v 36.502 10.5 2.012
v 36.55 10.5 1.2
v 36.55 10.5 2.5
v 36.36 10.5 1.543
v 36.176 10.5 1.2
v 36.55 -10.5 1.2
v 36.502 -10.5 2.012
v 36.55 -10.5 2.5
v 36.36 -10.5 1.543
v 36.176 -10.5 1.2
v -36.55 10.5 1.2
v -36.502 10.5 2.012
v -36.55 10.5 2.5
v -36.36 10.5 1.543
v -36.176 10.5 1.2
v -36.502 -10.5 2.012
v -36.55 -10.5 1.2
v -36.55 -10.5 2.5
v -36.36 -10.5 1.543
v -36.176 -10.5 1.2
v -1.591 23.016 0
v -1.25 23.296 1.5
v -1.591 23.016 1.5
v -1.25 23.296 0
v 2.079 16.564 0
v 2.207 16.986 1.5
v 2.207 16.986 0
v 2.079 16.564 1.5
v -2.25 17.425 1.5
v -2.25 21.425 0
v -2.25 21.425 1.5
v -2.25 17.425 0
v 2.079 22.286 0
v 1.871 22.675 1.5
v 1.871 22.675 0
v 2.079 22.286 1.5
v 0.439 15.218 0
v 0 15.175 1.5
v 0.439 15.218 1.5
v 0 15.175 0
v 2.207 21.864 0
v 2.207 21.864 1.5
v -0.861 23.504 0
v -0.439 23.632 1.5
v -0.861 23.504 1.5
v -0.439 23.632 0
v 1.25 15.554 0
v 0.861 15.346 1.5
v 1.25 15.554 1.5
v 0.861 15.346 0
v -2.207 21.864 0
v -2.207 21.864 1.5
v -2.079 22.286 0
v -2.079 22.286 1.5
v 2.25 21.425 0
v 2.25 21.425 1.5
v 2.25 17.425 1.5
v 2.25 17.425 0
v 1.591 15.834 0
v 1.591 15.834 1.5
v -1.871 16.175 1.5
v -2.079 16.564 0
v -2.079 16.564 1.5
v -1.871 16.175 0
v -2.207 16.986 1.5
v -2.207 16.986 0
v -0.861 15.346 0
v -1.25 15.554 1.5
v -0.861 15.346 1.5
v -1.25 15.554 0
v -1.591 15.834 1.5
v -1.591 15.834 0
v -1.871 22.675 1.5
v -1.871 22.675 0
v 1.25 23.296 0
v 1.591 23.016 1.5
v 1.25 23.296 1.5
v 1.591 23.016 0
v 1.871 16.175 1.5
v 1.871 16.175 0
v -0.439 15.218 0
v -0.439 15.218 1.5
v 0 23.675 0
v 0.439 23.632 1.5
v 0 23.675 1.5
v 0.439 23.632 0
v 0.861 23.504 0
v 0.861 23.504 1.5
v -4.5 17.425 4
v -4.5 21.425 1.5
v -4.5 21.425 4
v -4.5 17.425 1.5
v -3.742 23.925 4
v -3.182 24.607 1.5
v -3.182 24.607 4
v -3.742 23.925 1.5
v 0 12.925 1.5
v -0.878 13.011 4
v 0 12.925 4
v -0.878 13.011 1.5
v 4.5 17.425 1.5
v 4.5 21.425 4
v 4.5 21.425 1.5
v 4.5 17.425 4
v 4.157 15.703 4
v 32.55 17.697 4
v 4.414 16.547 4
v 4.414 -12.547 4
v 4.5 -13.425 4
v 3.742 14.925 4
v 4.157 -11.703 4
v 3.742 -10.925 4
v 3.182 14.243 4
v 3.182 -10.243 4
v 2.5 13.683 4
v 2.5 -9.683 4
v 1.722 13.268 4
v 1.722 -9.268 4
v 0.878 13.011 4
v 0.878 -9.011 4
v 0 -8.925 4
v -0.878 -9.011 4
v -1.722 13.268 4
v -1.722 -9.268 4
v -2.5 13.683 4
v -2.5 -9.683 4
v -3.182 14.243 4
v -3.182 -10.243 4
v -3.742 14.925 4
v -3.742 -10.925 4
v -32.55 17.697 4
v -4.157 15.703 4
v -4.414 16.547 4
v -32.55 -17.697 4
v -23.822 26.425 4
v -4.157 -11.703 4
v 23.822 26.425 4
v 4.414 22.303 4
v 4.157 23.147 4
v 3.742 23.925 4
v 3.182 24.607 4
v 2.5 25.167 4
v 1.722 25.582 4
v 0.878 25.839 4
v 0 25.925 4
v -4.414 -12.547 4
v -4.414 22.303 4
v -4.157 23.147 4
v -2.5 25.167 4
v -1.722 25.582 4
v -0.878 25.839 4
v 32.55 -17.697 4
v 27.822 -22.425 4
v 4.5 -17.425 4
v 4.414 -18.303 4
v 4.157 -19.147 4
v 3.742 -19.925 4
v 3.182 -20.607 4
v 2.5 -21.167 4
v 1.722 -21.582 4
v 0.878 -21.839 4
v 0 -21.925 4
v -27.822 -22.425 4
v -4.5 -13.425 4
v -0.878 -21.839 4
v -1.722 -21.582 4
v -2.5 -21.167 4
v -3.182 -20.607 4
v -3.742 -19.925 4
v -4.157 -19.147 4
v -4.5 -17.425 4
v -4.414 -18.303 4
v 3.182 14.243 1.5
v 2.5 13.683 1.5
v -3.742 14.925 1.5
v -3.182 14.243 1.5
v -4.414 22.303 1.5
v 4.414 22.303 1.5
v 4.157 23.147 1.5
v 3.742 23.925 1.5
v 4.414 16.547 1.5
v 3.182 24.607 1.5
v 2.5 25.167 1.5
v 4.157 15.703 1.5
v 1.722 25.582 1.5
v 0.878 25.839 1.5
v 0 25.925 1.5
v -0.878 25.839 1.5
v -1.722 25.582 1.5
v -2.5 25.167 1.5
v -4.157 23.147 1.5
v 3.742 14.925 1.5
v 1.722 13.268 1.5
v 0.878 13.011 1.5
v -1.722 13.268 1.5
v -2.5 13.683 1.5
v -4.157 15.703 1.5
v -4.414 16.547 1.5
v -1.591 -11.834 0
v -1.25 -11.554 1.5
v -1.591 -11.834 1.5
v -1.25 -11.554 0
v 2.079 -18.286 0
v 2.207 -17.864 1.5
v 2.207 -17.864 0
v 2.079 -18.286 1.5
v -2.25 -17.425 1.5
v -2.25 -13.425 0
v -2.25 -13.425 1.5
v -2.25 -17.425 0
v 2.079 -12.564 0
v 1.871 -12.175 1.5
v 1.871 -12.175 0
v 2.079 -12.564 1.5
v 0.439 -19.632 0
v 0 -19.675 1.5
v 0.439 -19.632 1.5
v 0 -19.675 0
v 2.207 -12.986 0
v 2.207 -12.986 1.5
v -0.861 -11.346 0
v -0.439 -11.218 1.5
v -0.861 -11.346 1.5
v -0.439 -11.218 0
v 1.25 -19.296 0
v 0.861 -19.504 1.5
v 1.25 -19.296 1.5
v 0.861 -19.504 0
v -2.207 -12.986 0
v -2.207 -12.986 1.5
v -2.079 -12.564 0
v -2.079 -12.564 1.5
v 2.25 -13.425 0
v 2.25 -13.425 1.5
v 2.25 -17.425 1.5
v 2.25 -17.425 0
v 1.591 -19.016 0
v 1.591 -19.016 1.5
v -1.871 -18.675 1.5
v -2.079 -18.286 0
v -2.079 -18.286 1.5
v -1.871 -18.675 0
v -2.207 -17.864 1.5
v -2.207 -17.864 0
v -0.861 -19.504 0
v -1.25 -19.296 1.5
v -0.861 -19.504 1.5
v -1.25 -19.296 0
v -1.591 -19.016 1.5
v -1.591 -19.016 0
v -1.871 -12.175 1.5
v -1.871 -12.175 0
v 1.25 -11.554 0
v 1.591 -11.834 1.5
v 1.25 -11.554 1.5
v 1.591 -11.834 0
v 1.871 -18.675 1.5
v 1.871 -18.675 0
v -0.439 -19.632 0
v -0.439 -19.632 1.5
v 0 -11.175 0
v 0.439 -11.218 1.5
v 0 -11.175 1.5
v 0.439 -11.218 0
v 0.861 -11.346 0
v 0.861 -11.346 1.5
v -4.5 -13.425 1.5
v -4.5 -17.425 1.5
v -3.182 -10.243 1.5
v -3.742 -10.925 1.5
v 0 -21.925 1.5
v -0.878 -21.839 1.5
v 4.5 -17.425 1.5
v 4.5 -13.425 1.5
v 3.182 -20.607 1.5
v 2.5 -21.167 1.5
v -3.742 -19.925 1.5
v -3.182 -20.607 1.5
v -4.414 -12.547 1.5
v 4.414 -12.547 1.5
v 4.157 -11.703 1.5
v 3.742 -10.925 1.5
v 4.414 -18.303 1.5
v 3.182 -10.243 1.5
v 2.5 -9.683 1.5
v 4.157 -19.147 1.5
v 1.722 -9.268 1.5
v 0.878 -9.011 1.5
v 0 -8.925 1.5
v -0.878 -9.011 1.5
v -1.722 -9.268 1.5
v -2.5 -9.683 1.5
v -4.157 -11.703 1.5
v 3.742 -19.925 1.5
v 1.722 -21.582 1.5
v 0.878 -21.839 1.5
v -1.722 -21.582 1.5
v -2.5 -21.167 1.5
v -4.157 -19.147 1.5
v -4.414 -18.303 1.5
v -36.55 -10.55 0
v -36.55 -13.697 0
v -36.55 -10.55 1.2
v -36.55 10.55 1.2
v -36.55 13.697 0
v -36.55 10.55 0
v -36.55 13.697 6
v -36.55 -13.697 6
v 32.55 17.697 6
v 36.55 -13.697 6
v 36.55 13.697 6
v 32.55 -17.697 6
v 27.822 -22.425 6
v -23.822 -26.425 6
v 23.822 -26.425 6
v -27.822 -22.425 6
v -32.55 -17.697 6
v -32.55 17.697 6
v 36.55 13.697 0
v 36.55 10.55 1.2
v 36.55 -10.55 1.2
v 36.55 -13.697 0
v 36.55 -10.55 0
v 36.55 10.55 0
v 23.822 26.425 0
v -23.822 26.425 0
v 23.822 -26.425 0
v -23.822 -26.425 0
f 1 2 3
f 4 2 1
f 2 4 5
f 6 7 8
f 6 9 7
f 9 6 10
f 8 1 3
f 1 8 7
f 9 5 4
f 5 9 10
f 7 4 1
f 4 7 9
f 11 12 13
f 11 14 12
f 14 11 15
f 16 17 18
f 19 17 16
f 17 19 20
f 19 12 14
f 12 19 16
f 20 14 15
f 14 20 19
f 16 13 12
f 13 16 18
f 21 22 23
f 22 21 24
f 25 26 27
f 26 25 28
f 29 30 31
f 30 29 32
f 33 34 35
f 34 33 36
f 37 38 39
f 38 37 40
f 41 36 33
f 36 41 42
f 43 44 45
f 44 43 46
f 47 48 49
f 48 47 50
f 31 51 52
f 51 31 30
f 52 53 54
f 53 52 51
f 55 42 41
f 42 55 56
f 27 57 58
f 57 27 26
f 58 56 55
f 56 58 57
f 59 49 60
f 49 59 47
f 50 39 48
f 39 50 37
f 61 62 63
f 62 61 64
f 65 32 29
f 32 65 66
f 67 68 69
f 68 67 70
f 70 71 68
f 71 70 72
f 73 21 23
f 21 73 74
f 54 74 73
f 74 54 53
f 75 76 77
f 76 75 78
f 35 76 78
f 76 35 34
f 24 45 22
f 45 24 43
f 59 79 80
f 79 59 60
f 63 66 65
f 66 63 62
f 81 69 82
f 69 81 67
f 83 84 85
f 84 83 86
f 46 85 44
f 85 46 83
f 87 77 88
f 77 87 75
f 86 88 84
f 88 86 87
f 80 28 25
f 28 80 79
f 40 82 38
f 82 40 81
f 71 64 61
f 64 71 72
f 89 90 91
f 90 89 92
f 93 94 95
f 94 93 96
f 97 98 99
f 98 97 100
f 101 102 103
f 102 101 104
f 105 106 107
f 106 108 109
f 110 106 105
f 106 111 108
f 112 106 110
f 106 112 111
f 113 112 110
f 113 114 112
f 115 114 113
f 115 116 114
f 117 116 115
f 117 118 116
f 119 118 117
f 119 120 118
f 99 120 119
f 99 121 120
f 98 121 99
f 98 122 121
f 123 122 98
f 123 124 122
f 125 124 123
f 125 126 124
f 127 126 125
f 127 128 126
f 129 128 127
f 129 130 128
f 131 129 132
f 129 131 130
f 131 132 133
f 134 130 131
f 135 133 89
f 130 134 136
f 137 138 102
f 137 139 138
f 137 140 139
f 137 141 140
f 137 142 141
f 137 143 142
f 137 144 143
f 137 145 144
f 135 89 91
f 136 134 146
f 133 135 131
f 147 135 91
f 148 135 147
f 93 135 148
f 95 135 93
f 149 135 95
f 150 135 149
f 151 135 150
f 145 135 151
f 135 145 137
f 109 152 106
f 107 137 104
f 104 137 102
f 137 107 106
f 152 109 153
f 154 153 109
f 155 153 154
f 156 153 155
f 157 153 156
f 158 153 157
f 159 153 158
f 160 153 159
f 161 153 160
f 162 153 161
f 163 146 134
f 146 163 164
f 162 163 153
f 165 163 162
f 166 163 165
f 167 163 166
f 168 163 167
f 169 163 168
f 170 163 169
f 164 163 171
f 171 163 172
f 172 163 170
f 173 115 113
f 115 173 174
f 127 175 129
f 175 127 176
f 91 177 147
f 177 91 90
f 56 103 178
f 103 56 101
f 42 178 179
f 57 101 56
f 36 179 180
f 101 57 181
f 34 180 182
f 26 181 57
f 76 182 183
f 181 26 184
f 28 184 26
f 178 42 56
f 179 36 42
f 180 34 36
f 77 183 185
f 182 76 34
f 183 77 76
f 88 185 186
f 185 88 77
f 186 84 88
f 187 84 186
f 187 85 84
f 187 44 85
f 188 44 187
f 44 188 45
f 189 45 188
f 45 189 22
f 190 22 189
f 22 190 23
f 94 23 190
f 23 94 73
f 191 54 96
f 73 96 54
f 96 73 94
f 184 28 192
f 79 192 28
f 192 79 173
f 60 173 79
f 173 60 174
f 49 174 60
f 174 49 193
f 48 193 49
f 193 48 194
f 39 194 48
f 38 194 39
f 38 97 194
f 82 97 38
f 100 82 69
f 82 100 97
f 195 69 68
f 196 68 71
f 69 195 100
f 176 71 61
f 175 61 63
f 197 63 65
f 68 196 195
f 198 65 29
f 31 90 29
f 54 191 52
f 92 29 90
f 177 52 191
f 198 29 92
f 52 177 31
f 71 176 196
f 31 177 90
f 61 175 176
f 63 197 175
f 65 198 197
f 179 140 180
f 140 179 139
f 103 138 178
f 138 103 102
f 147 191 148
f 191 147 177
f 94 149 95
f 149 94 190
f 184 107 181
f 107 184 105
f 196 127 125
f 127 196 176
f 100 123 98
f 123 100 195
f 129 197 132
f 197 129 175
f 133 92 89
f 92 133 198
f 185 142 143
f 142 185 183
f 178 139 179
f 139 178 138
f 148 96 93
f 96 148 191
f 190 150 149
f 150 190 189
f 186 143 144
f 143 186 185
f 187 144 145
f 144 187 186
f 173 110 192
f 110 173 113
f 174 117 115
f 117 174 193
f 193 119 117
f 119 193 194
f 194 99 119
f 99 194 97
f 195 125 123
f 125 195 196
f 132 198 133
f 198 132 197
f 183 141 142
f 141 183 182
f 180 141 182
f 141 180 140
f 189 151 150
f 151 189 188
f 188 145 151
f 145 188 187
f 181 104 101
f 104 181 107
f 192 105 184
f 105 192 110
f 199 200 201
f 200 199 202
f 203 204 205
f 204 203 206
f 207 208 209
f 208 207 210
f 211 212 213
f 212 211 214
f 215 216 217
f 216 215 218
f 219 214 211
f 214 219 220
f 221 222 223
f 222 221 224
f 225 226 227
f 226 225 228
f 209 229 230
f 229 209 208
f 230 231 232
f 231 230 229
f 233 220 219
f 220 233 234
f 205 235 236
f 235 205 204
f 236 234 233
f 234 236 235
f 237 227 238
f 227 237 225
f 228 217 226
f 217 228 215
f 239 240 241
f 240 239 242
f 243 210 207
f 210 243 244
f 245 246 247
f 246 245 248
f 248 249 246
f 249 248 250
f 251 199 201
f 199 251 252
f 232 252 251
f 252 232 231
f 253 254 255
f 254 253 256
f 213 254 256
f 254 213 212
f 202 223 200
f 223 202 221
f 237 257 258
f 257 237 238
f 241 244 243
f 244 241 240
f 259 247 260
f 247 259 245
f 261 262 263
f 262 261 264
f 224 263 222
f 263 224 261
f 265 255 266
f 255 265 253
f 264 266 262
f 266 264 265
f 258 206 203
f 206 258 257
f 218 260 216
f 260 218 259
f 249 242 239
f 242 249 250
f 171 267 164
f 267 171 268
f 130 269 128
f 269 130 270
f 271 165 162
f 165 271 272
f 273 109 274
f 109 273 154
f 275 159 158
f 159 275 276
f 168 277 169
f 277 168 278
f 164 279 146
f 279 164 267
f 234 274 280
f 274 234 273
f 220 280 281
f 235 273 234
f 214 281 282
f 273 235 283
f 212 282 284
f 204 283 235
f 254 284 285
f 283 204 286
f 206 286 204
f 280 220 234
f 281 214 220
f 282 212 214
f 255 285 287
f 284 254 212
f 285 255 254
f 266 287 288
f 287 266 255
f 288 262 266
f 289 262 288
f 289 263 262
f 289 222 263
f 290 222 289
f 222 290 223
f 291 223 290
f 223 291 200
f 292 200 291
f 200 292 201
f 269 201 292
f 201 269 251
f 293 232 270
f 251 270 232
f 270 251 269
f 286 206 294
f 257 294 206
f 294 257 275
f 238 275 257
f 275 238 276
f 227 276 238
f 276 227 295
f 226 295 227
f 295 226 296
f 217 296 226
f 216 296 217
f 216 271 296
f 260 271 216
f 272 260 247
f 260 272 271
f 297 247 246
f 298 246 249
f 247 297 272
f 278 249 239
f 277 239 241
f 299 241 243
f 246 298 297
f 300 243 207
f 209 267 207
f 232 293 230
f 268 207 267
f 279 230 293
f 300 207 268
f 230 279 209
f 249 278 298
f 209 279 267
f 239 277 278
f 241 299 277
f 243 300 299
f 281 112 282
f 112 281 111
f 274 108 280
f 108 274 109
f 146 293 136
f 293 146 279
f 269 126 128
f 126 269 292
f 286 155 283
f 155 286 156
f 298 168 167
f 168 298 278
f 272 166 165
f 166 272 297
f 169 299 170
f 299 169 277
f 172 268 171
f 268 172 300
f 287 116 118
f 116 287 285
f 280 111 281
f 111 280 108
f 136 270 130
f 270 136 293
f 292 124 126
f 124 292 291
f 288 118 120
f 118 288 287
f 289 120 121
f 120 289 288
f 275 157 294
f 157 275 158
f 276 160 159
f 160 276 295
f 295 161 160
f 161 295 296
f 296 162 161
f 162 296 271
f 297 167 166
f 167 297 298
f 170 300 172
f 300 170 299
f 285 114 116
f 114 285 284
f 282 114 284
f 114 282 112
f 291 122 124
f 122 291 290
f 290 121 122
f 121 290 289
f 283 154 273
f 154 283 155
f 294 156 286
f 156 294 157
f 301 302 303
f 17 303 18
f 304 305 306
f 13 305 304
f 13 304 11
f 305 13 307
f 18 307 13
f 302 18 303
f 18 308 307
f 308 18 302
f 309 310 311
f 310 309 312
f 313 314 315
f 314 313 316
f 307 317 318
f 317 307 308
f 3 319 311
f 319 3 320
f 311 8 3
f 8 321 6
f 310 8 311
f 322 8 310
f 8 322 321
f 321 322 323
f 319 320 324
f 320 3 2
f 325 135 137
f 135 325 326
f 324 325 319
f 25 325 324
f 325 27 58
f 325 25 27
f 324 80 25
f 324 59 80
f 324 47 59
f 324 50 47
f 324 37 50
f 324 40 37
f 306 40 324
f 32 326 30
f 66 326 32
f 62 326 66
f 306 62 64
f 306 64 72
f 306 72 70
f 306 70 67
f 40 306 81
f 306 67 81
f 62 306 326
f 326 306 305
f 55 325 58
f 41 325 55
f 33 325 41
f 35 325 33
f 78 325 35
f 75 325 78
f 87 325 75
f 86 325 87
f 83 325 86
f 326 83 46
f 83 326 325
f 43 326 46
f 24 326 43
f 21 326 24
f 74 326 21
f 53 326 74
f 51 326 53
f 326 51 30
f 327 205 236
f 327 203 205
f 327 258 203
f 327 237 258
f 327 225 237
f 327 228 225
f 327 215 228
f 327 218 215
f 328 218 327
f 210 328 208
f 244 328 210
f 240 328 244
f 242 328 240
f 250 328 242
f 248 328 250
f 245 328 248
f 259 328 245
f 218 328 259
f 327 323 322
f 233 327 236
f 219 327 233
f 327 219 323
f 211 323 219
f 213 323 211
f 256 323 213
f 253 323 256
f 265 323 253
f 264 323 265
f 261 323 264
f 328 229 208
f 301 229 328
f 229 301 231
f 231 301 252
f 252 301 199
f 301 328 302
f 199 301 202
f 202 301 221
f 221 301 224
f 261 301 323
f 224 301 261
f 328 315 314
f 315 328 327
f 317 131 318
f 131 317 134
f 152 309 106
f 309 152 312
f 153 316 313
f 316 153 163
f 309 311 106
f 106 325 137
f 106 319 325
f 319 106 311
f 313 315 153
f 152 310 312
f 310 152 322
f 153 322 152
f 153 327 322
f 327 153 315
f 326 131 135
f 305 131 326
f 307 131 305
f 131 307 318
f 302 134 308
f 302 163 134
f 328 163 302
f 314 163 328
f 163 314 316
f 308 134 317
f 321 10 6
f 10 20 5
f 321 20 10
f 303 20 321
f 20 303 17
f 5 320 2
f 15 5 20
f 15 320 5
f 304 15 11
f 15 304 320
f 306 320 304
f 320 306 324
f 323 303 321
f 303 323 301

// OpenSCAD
/*
    Proxymow Mower - Battery Mount Foot
    Print in Black PETG

    use velcro strap through foot to fix batteries
*/
batt_width = 65;//mm
batt_length = 151;//mm
batt_height = 101;//excluding terminals
batt_term_protrusion = 12;//mm incl connectors
spacer_width = 8;//mm
strap_width = 21;//mm
strap_thickness = 1.2;//mm
foot_depth = 0.35 * batt_length;
echo("foot depth", foot_depth);
foot_height = 6;//mm
foot_offset = 9;//mm
wall_thickness = 4;//mm
cap_base_thickness = 10;//mm
cap_height = 20;//mm
clearance = 0.1;//mm variable space to insert/shrinkage
chamfer_dim = 18;
fix_hole_dia = 4.5;//mm
fix_head_dia = 9;//mm
slot_head_height = 2.5;//mm
slot_length = 4;//mm
cavity_width = batt_width + clearance;
foot_width = cavity_width + (2 * wall_thickness);

module battery() {
    translate([0, batt_length/2 - foot_depth/2 + wall_thickness + clearance, batt_height/2 + wall_thickness]) rotate([0, 0, 90]) cube([batt_length, batt_width, batt_height], center=true);
}

module rounded_cube(size_array, centre=false, corner_radius=2) {
    *cube(size_array, center=centre);
    w = size_array[0];
    d = size_array[1];
    h = size_array[2];
    translate([0, centre?-d/2:0, centre?-h/2:0]) hull() {
        translate([0, corner_radius, corner_radius]) rotate([0, 90, 0]) cylinder(h=w, r=corner_radius, center=centre, $fn=32);
        translate([0, d - corner_radius, corner_radius]) rotate([0, 90, 0]) cylinder(h=w, r=corner_radius, center=centre, $fn=32);
        translate([0, corner_radius/1.414, h - corner_radius/1.414]) rotate([45, 0, 0]) rotate([0, 90, 0]) cylinder(h=w, r=corner_radius, center=centre, $fn=4);
        translate([0, d - corner_radius/1.414, h - corner_radius/1.414]) rotate([45, 0, 0]) rotate([0, 90, 0]) cylinder(h=w, r=corner_radius, center=centre, $fn=4);
    }
}
module chamfer() {
    translate([foot_width/2, foot_depth/2, cap_height/2]) rotate([0, 0, 45]) cube([chamfer_dim, chamfer_dim, cap_height*2], center=true);
}
module spacer() {
    translate([3*spacer_width/2, 0, batt_term_protrusion/2 + wall_thickness]) cube([spacer_width, foot_depth, batt_term_protrusion], center=true);
}

module round_edge(dia=5) {
    translate([dia/2, -dia/2, 0]) intersection() {
        difference() {
            cylinder(h=strap_width, d=dia*2, $fn=32);
            cylinder(h=strap_width, d=dia, $fn=32);
        }
        translate([-dia, 0, 0]) cube([dia,dia,strap_width]);
    }
}
module slot() {
    hull() {
        translate([0, foot_depth/2, -1]) cylinder(h=wall_thickness*2, d=fix_hole_dia, $fn=32);
        translate([0, foot_depth/2 + slot_length]) cylinder(h=wall_thickness*2, d=fix_hole_dia, $fn=32);
    }
    hull() {
        translate([0, foot_depth/2, wall_thickness-slot_head_height]) cylinder(h=slot_head_height, d=fix_head_dia, $fn=32);
        translate([0, foot_depth/2 + slot_length, wall_thickness-slot_head_height]) cylinder(h=slot_head_height, d=fix_head_dia, $fn=32);
    }
}
module foot() {
    difference() {
        //outside
        translate([0, 0, foot_height/2]) cube([foot_width, foot_depth, foot_height], center=true);
        //cavity
        translate([0, wall_thickness, foot_height/2 + wall_thickness]) cube([cavity_width, foot_depth, foot_height], center=true);
        //chamfers
        chamfer();
        mirror([0, 1, 0]) chamfer();
        mirror([1, 0, 0]) chamfer();
        mirror([1, 0, 0]) mirror([0, 1, 0]) chamfer();
        //strap tunnel
        translate([0, 0, 0]) cube([foot_width*2, strap_width + clearance, strap_thickness*2], center=true);
        //rounded edges
        translate([foot_width/2, strap_width/2, 0]) rotate([90, 180, 0]) round_edge();
        translate([-foot_width/2, strap_width/2, 0]) rotate([90, 270, 0]) round_edge();
        //fixing slots
        translate([0,  -foot_offset, 0]) slot();
        translate([0,  -foot_depth+foot_offset, 0]) slot();
    }
}


//assembly
module assembly() {
    color("pink") battery();
    translate([0, batt_length-foot_depth+wall_thickness*2, 0]) mirror([0,1,0]) foot();
    foot();
    %translate([0, foot_depth/2-foot_offset+slot_length/2, 0]) cube([20, 67.5, 1], center=false);
    %translate([-30, -foot_depth/2+foot_offset+slot_length/2, 0]) cube([30, 137, 1], center=false);
}
//assembly();
foot();
